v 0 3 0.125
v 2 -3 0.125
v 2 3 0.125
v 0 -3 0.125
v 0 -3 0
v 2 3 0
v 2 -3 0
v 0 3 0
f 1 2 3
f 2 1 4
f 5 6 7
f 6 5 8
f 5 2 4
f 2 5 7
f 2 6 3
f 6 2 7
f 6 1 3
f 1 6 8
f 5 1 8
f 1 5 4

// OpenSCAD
module stab() {
  translate([0,-3,0])
  cube([2,6,1/8]);
}

stab();
